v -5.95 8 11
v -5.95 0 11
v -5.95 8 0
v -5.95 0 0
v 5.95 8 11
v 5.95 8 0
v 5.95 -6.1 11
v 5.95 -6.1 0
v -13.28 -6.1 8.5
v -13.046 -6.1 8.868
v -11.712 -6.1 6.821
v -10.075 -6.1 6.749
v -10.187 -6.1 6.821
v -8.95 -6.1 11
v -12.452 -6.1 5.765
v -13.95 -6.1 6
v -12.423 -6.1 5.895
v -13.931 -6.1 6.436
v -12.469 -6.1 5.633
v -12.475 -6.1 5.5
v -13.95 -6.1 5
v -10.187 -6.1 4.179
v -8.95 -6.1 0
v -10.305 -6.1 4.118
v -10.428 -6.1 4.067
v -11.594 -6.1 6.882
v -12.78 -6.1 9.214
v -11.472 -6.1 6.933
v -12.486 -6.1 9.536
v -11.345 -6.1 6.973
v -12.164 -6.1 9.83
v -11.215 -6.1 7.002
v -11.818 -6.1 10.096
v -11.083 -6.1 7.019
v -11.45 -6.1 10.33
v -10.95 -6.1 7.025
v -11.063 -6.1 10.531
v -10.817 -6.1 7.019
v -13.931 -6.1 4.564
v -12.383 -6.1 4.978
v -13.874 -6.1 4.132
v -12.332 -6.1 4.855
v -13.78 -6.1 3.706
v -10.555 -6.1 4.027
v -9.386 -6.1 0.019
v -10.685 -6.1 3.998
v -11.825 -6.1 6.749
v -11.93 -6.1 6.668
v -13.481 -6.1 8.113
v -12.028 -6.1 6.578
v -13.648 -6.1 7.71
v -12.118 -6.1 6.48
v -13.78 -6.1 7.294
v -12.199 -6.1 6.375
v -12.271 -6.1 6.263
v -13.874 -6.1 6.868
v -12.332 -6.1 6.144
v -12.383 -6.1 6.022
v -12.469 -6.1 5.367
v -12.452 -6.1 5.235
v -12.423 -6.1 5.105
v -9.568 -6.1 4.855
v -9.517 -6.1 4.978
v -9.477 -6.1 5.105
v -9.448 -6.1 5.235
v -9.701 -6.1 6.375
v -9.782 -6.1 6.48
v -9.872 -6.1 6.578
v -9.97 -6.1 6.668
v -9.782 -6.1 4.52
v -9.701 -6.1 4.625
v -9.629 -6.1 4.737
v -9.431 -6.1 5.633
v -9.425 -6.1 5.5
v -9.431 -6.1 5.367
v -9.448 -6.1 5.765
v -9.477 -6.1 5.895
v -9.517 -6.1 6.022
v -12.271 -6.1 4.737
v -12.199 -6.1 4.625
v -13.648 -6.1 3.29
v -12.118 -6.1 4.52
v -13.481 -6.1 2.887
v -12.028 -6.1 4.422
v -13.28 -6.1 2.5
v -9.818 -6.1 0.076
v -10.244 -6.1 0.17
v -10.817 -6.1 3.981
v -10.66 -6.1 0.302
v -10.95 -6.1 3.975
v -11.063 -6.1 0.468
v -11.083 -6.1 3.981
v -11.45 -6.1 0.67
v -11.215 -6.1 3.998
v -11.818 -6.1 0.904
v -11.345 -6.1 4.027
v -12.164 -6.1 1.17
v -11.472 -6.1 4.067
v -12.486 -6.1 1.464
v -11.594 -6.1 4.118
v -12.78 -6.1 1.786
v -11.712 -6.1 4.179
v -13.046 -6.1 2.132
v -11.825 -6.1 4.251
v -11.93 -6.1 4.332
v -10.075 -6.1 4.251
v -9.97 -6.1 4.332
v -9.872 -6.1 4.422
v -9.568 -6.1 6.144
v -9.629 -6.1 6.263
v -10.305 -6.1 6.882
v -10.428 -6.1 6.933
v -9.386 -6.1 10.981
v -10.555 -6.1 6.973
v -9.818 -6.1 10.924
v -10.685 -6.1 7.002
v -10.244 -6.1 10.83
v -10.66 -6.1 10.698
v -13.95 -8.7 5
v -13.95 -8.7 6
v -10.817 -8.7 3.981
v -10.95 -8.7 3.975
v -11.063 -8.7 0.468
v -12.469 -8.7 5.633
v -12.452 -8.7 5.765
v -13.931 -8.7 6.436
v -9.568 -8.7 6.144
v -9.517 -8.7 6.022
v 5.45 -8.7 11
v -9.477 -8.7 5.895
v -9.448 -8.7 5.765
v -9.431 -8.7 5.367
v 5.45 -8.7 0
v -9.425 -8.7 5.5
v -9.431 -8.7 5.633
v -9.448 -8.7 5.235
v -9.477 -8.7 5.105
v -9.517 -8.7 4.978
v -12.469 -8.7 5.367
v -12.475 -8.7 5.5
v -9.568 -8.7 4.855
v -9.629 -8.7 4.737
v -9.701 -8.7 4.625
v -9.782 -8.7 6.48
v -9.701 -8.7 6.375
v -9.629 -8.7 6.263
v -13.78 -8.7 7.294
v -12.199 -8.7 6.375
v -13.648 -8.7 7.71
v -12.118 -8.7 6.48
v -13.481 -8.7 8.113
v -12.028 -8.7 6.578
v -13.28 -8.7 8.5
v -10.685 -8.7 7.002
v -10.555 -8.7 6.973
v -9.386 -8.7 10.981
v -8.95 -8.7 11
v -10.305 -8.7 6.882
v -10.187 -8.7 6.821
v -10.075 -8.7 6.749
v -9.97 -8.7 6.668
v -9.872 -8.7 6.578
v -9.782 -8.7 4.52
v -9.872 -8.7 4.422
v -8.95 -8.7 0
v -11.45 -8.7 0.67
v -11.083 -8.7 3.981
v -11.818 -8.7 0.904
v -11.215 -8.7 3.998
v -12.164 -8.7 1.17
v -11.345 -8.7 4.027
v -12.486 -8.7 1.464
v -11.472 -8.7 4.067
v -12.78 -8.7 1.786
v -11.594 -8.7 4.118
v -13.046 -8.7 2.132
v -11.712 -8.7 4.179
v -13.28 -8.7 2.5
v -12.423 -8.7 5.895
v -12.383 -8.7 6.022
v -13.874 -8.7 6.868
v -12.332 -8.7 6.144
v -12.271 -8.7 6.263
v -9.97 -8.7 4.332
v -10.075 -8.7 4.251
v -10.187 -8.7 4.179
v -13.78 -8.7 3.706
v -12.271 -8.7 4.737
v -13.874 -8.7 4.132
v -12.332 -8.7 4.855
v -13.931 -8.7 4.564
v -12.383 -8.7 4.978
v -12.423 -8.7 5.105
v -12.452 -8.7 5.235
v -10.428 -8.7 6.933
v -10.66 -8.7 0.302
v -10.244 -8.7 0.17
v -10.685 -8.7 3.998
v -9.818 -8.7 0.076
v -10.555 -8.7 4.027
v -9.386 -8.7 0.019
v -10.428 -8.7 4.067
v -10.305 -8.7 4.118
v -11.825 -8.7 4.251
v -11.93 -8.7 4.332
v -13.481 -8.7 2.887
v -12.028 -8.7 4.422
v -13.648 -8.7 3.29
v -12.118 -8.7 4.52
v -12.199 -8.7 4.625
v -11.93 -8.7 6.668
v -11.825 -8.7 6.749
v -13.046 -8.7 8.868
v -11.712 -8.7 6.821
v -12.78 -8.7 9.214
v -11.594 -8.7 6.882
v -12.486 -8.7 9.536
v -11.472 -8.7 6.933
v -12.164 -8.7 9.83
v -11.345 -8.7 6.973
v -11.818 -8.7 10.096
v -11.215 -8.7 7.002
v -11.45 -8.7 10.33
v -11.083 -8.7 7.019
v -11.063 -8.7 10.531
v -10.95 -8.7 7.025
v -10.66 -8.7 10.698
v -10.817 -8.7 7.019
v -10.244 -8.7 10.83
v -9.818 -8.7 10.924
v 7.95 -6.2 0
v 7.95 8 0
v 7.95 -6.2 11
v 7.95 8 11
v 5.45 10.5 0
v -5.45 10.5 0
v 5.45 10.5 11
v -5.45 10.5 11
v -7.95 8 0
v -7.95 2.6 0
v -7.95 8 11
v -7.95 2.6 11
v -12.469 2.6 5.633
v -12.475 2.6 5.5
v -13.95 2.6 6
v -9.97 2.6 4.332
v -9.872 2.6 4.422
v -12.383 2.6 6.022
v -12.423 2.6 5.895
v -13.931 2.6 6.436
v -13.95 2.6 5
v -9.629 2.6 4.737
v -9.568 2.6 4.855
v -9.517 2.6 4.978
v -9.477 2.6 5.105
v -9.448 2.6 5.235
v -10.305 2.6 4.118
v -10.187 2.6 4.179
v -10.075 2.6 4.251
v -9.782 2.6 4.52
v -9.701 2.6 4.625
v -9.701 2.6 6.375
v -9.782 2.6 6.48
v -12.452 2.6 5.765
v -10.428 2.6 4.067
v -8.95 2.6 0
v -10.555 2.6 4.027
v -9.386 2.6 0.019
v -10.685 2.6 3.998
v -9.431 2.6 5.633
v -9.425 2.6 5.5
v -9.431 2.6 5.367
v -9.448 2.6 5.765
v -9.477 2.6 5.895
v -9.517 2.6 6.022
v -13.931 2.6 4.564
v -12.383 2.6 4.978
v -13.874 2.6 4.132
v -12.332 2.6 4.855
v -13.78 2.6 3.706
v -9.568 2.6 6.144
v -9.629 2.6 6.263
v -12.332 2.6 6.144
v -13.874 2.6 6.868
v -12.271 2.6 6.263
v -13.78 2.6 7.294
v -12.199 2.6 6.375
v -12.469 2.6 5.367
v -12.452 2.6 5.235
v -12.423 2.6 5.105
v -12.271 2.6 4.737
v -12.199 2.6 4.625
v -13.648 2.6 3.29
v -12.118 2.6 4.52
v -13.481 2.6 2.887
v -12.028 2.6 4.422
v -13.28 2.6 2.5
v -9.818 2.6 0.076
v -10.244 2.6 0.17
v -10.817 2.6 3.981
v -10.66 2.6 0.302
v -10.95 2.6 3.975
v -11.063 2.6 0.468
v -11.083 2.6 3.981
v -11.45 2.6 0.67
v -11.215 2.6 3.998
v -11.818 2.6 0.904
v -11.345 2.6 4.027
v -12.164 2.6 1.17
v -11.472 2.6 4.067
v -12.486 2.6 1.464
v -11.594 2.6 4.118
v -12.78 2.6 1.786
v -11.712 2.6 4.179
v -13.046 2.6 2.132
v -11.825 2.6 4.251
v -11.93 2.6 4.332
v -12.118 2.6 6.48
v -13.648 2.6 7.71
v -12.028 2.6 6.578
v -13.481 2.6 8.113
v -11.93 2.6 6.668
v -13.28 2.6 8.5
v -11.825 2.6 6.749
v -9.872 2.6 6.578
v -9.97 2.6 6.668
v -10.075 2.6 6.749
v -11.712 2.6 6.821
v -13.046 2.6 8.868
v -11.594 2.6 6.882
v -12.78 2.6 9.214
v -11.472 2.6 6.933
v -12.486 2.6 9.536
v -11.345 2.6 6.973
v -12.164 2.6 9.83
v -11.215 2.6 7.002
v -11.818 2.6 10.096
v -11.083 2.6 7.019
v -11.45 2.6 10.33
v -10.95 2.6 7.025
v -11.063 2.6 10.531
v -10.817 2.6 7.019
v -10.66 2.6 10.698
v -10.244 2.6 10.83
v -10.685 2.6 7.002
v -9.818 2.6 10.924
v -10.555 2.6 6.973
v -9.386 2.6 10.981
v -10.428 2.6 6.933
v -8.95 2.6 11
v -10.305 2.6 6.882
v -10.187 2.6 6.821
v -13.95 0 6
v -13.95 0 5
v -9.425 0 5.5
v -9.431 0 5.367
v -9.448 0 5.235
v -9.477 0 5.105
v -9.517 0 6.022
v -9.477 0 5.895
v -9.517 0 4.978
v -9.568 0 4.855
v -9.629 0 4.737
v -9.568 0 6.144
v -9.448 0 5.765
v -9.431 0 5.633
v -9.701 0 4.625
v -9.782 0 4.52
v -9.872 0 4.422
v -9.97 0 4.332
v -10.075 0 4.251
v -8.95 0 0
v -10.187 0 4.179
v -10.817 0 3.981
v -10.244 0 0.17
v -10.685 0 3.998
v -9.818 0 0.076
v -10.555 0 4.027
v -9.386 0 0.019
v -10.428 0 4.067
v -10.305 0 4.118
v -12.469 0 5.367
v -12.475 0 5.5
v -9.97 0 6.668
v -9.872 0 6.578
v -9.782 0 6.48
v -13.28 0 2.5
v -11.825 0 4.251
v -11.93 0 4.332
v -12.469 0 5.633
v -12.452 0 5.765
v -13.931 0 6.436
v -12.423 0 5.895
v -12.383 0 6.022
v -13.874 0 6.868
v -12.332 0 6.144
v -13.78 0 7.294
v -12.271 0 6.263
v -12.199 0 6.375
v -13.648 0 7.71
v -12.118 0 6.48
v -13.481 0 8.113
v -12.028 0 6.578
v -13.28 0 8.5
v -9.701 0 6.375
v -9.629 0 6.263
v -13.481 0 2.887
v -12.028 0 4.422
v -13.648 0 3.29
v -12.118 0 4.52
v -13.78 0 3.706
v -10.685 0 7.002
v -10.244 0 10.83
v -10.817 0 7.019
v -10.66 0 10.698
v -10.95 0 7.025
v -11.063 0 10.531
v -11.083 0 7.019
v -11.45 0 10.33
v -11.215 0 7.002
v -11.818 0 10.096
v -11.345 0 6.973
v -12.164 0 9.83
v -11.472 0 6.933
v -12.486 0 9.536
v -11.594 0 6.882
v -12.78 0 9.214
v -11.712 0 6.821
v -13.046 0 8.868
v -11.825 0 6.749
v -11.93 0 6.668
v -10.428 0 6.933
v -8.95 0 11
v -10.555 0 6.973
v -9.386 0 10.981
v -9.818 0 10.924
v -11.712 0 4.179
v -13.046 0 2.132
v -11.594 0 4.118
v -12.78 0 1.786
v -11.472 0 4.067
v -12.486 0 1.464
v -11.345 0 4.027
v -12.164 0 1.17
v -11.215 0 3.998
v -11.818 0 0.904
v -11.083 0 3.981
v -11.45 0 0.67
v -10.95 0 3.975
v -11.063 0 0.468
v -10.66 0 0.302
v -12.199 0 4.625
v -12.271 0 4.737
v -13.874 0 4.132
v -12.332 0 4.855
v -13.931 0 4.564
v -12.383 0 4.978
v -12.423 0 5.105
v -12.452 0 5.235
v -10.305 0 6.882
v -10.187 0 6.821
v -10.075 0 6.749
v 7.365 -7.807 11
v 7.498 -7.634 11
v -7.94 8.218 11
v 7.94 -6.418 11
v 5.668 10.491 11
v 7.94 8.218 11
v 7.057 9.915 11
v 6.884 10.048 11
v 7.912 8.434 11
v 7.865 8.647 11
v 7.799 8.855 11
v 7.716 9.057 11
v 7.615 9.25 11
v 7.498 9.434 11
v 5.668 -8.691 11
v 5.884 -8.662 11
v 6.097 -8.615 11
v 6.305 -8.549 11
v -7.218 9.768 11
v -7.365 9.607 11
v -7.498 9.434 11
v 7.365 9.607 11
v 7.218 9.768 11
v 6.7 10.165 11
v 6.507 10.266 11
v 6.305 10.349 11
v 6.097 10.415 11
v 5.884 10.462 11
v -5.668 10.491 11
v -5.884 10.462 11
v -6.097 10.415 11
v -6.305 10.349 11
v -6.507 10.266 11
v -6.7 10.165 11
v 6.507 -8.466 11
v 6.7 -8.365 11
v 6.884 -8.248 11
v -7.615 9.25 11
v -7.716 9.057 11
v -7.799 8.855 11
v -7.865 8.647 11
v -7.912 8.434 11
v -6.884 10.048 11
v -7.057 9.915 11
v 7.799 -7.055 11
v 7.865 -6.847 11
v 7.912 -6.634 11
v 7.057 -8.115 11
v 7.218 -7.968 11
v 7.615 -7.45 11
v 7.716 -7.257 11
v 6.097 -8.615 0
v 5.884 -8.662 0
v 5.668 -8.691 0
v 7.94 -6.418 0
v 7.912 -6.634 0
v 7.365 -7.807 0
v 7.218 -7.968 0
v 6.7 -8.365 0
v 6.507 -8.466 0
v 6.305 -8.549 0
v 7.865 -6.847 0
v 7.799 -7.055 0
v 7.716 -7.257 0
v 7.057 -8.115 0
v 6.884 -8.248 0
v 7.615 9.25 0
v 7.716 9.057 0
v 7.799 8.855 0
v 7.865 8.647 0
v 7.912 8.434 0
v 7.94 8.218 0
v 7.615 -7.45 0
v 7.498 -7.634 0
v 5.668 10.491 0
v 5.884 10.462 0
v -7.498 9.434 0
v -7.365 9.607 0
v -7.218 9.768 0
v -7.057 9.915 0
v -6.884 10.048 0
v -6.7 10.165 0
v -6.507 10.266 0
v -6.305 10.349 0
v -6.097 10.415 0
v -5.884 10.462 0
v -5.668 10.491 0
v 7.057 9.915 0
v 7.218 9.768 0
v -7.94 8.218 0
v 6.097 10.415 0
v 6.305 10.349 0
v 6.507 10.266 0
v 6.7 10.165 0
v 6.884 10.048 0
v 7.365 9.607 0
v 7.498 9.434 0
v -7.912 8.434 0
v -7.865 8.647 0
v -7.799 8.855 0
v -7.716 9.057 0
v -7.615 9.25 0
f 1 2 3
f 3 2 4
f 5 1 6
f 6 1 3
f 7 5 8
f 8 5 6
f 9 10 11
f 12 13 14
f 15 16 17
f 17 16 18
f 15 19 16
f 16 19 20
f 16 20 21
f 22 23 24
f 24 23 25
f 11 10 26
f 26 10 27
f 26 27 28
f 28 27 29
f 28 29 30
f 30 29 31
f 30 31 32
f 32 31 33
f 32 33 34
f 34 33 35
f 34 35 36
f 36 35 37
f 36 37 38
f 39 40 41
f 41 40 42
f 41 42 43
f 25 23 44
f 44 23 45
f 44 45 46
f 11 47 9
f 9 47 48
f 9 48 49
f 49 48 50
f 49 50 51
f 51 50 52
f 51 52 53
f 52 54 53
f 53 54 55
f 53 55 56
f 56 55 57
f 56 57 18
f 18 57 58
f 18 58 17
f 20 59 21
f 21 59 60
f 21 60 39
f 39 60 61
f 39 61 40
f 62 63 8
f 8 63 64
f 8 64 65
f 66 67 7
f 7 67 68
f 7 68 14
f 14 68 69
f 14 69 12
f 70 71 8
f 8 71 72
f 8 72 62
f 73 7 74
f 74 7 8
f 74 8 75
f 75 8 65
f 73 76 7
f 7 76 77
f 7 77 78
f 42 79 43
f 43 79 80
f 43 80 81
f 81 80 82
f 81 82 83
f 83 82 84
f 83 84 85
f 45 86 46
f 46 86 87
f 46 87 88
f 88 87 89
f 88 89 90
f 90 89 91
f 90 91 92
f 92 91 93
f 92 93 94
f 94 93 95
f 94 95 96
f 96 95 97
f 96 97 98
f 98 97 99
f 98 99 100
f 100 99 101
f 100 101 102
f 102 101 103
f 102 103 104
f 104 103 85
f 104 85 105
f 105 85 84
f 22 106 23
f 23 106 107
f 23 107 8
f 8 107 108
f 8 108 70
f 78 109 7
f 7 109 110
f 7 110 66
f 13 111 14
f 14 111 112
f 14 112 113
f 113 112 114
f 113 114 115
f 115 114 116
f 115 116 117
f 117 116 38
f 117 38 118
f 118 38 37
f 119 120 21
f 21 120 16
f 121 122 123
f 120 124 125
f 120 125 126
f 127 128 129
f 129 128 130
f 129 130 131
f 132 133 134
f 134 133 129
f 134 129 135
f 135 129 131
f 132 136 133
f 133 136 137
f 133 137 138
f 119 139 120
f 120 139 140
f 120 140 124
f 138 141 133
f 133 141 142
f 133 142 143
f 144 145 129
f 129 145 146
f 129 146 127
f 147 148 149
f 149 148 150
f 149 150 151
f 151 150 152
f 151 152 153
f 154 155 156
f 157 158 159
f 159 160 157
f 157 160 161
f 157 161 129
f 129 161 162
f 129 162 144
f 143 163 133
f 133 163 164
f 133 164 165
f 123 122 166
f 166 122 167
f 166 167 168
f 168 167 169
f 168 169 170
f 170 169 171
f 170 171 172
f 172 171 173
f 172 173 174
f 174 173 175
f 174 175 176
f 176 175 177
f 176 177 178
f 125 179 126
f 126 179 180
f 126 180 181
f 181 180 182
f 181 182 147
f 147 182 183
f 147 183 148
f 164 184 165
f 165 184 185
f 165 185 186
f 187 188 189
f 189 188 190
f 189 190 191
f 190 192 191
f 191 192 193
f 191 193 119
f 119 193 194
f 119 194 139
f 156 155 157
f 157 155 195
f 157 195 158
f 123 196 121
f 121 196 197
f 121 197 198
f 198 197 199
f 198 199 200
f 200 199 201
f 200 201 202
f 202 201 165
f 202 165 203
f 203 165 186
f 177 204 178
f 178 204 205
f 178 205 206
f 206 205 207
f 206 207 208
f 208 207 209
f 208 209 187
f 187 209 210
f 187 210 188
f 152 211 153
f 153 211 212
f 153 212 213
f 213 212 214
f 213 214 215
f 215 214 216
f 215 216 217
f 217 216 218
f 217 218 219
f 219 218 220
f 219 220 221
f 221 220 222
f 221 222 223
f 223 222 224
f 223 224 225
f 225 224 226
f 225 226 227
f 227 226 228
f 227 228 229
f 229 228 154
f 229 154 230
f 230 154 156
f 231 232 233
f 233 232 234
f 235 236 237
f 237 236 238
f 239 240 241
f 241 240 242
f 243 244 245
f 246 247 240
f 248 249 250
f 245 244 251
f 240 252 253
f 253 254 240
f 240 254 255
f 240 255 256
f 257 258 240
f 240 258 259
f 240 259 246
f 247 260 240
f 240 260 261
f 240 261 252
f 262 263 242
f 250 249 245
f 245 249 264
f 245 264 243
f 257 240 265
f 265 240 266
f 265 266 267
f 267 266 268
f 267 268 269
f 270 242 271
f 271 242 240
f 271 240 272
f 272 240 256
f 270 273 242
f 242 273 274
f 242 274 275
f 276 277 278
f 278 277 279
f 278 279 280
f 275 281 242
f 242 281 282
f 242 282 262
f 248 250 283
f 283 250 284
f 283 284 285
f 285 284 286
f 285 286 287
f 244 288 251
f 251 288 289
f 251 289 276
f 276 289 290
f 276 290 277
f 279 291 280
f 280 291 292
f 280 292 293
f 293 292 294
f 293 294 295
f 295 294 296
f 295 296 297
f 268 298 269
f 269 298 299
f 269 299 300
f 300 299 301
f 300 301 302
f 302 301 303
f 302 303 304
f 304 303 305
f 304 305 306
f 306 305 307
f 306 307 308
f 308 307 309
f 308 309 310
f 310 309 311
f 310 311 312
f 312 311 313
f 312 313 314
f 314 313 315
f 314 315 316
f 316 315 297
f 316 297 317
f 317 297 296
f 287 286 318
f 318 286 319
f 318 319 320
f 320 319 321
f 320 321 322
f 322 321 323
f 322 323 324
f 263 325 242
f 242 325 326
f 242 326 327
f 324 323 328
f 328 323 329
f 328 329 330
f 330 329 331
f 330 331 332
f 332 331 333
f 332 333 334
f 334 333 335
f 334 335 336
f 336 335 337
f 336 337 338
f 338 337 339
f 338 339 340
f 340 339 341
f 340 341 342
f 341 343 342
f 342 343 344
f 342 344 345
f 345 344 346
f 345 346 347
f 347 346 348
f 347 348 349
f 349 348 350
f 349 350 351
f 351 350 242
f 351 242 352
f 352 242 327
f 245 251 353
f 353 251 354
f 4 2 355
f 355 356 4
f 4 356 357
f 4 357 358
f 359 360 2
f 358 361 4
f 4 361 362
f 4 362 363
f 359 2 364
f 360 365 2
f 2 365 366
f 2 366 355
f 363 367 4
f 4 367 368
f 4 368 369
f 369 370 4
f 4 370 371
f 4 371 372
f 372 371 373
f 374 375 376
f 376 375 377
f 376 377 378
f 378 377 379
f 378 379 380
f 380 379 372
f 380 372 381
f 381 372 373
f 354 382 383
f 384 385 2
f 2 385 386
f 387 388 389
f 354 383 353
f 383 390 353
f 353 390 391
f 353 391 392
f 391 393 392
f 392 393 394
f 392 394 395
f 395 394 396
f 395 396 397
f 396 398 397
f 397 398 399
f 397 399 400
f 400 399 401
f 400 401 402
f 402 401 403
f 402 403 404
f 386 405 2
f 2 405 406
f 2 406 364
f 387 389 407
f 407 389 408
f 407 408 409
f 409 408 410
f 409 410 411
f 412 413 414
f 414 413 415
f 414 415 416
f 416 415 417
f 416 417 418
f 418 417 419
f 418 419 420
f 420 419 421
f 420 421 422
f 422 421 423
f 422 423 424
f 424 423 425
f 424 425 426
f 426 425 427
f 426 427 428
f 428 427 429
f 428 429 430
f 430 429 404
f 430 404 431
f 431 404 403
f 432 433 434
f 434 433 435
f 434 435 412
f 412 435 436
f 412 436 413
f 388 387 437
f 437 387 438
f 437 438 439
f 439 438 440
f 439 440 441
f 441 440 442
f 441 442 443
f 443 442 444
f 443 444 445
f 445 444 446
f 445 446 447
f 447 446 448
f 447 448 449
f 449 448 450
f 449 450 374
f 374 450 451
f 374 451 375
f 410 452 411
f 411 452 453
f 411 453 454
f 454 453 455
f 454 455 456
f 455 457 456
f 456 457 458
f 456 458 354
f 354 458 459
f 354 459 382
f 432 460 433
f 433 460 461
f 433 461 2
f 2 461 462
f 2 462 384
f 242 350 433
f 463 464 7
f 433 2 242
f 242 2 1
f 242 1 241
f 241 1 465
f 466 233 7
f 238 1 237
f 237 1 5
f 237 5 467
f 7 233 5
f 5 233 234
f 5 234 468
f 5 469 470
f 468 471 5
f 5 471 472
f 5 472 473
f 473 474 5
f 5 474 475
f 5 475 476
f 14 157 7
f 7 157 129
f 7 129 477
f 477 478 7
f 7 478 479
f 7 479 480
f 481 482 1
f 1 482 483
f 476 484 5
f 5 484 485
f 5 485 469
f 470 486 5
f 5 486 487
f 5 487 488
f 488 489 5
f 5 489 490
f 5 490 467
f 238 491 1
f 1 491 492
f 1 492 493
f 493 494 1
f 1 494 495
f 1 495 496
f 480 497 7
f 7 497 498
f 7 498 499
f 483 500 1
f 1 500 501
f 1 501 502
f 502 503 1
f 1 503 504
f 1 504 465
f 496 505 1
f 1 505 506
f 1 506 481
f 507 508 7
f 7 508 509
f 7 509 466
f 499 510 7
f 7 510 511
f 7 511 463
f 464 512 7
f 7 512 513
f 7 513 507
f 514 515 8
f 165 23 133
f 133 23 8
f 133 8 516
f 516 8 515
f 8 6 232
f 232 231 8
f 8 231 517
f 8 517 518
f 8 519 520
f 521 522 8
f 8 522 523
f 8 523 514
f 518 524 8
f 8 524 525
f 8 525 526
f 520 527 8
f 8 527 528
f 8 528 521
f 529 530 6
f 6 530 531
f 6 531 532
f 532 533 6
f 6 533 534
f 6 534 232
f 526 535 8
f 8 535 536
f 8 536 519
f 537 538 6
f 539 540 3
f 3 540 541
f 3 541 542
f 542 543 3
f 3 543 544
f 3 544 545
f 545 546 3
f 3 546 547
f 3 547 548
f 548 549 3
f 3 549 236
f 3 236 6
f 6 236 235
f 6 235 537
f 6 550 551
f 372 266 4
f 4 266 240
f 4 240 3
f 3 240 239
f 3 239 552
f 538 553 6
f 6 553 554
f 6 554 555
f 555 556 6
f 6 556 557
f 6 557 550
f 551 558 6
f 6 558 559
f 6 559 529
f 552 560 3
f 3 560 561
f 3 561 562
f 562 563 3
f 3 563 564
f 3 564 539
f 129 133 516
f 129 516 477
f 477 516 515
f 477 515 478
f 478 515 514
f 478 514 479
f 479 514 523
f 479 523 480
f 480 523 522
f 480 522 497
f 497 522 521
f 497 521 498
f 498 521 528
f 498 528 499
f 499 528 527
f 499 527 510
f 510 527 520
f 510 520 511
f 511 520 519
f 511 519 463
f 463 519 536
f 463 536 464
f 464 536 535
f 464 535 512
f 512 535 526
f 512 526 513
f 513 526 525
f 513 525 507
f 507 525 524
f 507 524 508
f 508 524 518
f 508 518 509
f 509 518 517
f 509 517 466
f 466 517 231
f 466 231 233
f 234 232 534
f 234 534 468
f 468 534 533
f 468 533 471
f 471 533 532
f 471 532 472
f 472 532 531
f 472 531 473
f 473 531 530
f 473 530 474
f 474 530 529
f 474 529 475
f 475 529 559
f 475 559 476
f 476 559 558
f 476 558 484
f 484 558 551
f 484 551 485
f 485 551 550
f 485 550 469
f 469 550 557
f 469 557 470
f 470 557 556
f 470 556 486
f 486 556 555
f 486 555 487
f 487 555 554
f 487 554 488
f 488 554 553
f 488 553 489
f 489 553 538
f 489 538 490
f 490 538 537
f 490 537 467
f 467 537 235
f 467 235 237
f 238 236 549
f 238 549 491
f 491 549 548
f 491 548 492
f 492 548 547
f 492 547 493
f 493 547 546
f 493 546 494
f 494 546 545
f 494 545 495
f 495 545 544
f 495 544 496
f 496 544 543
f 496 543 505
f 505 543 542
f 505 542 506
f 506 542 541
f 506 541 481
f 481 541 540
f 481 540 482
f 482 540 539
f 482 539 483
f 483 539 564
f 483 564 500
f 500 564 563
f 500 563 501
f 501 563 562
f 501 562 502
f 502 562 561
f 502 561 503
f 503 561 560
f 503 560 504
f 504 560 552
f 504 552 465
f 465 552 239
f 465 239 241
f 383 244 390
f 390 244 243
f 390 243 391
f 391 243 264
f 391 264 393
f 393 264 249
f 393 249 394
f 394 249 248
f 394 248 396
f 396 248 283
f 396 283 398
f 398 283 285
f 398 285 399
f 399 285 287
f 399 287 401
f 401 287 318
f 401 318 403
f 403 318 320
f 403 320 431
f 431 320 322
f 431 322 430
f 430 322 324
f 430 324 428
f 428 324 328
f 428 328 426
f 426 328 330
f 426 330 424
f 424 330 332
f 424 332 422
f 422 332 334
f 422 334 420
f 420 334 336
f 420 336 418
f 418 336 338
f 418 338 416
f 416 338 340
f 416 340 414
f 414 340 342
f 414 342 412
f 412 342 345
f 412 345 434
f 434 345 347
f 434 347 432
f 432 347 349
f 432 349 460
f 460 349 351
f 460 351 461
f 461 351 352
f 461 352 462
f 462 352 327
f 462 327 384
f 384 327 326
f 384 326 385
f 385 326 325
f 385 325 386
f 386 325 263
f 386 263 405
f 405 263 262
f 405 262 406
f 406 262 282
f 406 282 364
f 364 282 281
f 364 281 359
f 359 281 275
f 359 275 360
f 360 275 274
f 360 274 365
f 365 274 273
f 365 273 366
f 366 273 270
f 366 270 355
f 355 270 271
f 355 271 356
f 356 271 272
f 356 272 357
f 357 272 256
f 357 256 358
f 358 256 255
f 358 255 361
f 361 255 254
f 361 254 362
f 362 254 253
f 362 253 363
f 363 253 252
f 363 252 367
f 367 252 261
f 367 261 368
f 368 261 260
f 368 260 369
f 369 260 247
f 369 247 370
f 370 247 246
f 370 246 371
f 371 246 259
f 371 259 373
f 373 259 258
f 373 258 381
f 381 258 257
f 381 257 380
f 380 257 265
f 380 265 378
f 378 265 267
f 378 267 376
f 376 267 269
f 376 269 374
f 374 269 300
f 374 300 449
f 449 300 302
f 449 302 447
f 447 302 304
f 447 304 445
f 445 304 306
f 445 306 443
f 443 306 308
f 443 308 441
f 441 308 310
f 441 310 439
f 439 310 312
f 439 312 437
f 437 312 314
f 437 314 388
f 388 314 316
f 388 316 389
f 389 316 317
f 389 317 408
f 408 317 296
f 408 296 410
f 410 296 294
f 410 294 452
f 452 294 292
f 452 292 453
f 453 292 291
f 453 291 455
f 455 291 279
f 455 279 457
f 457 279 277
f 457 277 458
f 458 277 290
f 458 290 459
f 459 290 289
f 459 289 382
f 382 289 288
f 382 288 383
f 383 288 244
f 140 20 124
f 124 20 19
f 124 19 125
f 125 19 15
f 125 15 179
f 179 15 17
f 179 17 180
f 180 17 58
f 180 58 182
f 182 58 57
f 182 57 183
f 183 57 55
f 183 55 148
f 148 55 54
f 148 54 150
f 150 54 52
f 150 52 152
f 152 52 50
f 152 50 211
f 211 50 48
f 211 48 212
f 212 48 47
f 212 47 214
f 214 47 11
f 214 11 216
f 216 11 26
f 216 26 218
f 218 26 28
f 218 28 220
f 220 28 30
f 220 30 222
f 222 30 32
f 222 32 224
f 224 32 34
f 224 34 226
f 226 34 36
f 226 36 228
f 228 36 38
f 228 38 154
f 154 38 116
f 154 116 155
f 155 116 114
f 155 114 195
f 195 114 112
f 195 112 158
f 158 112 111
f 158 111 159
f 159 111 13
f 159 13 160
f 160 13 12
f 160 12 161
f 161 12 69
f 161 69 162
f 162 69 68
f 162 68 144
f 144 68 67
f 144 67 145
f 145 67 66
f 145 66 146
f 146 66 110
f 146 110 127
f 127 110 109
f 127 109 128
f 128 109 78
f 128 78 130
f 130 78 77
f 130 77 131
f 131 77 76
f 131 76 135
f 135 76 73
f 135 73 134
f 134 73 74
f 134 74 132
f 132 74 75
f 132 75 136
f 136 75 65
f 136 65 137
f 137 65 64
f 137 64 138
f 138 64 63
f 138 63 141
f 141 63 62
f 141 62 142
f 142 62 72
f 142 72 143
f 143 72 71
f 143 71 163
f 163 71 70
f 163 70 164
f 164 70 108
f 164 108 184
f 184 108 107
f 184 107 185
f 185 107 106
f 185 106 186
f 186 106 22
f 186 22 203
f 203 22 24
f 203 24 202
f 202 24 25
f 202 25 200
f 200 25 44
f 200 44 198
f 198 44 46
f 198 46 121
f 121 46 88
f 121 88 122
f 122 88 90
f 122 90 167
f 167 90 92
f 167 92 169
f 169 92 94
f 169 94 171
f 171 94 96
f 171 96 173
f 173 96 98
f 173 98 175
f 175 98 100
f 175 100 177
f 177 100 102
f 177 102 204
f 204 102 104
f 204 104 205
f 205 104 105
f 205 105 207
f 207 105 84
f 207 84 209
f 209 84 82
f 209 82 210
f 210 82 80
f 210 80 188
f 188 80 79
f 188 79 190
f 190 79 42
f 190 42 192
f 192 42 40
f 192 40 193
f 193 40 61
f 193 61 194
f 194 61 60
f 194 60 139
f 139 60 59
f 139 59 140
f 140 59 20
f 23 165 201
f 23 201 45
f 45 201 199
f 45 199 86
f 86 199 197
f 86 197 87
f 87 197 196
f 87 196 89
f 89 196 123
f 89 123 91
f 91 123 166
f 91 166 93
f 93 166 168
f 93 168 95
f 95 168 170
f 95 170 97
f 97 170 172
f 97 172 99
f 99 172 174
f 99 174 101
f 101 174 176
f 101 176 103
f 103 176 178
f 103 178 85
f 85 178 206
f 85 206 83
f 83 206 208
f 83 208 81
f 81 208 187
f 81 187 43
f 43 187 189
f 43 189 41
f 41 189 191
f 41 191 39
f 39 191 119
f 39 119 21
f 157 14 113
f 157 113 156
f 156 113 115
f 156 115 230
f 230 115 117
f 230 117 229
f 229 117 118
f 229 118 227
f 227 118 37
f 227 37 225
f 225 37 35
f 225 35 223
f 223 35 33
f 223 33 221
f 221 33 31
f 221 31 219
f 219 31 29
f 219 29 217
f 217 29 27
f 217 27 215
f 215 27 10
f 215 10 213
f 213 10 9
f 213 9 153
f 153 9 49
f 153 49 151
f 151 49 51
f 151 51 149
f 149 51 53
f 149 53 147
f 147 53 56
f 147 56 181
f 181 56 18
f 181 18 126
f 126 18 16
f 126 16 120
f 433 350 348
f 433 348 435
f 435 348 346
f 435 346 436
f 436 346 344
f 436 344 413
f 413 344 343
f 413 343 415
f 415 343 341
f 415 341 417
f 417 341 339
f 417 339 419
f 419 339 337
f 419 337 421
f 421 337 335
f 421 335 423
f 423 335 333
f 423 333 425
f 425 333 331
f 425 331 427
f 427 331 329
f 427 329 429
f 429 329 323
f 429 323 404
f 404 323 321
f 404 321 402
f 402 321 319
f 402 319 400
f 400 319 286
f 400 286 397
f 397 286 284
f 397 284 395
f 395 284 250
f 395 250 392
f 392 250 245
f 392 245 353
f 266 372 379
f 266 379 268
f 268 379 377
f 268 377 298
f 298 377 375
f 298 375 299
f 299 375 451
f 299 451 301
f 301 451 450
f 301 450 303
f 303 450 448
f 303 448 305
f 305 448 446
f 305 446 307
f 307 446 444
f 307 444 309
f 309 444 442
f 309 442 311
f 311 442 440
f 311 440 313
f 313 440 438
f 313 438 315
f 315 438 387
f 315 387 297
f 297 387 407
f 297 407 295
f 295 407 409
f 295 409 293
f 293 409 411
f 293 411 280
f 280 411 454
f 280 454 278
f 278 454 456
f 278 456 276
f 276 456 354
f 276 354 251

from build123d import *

# Parameters (mm, degrees)
BOSS_EXTRUDE1_DEPTH = 11
FILLET2_R           = 2.5
SKETCH2_R           = 1.525
CUT_EXTRUDE1_DEPTH  = 22.05451258
FILLET3_R           = 5


with BuildPart() as part:
    # Sketch1 → Boss-Extrude1 (new body)
    with BuildSketch(Plane.XY):
        Polygon((-5.95, 0), (-5.95, 8), (5.95, 8), (5.95, 0), (5.95, -6.1), (-13.95, -6.1), (-13.95, -8.7), (7.95, -8.7), (7.95, 2.6), (7.95, 10.5), (-7.95, 10.5), (-7.95, 2.6), (-13.95, 2.6), (-13.95, 0), (-8.65875, 0), align=None)
    extrude(amount=BOSS_EXTRUDE1_DEPTH)

    # Fillet2
    fillet2_edges = [part.edges().sort_by_distance(p)[0] for p in [
        (-7.95, 10.5, 5.5),
        (7.95, 10.5, 5.5),
        (7.95, -8.7, 5.5),
    ]]
    fillet(fillet2_edges, radius=FILLET2_R)

    # Sketch2 → Cut-Extrude1 (cut, through all)
    with BuildSketch(Plane(origin=(0, 2.6, 0), x_dir=(1, 0, 0), z_dir=(0, 1, 0))):
        with Locations(Location((-10.95, -5.5, 0), (0, 0, 180))):
            Circle(SKETCH2_R)
    extrude(amount=-CUT_EXTRUDE1_DEPTH, mode=Mode.SUBTRACT)

    # Fillet3
    fillet3_edges = [part.edges().sort_by_distance(p)[0] for p in [
        (-13.95, 1.3, 0),
        (-13.95, -7.4, 0),
        (-13.95, -7.4, 11),
        (-13.95, 1.3, 11),
    ]]
    fillet(fillet3_edges, radius=FILLET3_R)


solid = part.part
